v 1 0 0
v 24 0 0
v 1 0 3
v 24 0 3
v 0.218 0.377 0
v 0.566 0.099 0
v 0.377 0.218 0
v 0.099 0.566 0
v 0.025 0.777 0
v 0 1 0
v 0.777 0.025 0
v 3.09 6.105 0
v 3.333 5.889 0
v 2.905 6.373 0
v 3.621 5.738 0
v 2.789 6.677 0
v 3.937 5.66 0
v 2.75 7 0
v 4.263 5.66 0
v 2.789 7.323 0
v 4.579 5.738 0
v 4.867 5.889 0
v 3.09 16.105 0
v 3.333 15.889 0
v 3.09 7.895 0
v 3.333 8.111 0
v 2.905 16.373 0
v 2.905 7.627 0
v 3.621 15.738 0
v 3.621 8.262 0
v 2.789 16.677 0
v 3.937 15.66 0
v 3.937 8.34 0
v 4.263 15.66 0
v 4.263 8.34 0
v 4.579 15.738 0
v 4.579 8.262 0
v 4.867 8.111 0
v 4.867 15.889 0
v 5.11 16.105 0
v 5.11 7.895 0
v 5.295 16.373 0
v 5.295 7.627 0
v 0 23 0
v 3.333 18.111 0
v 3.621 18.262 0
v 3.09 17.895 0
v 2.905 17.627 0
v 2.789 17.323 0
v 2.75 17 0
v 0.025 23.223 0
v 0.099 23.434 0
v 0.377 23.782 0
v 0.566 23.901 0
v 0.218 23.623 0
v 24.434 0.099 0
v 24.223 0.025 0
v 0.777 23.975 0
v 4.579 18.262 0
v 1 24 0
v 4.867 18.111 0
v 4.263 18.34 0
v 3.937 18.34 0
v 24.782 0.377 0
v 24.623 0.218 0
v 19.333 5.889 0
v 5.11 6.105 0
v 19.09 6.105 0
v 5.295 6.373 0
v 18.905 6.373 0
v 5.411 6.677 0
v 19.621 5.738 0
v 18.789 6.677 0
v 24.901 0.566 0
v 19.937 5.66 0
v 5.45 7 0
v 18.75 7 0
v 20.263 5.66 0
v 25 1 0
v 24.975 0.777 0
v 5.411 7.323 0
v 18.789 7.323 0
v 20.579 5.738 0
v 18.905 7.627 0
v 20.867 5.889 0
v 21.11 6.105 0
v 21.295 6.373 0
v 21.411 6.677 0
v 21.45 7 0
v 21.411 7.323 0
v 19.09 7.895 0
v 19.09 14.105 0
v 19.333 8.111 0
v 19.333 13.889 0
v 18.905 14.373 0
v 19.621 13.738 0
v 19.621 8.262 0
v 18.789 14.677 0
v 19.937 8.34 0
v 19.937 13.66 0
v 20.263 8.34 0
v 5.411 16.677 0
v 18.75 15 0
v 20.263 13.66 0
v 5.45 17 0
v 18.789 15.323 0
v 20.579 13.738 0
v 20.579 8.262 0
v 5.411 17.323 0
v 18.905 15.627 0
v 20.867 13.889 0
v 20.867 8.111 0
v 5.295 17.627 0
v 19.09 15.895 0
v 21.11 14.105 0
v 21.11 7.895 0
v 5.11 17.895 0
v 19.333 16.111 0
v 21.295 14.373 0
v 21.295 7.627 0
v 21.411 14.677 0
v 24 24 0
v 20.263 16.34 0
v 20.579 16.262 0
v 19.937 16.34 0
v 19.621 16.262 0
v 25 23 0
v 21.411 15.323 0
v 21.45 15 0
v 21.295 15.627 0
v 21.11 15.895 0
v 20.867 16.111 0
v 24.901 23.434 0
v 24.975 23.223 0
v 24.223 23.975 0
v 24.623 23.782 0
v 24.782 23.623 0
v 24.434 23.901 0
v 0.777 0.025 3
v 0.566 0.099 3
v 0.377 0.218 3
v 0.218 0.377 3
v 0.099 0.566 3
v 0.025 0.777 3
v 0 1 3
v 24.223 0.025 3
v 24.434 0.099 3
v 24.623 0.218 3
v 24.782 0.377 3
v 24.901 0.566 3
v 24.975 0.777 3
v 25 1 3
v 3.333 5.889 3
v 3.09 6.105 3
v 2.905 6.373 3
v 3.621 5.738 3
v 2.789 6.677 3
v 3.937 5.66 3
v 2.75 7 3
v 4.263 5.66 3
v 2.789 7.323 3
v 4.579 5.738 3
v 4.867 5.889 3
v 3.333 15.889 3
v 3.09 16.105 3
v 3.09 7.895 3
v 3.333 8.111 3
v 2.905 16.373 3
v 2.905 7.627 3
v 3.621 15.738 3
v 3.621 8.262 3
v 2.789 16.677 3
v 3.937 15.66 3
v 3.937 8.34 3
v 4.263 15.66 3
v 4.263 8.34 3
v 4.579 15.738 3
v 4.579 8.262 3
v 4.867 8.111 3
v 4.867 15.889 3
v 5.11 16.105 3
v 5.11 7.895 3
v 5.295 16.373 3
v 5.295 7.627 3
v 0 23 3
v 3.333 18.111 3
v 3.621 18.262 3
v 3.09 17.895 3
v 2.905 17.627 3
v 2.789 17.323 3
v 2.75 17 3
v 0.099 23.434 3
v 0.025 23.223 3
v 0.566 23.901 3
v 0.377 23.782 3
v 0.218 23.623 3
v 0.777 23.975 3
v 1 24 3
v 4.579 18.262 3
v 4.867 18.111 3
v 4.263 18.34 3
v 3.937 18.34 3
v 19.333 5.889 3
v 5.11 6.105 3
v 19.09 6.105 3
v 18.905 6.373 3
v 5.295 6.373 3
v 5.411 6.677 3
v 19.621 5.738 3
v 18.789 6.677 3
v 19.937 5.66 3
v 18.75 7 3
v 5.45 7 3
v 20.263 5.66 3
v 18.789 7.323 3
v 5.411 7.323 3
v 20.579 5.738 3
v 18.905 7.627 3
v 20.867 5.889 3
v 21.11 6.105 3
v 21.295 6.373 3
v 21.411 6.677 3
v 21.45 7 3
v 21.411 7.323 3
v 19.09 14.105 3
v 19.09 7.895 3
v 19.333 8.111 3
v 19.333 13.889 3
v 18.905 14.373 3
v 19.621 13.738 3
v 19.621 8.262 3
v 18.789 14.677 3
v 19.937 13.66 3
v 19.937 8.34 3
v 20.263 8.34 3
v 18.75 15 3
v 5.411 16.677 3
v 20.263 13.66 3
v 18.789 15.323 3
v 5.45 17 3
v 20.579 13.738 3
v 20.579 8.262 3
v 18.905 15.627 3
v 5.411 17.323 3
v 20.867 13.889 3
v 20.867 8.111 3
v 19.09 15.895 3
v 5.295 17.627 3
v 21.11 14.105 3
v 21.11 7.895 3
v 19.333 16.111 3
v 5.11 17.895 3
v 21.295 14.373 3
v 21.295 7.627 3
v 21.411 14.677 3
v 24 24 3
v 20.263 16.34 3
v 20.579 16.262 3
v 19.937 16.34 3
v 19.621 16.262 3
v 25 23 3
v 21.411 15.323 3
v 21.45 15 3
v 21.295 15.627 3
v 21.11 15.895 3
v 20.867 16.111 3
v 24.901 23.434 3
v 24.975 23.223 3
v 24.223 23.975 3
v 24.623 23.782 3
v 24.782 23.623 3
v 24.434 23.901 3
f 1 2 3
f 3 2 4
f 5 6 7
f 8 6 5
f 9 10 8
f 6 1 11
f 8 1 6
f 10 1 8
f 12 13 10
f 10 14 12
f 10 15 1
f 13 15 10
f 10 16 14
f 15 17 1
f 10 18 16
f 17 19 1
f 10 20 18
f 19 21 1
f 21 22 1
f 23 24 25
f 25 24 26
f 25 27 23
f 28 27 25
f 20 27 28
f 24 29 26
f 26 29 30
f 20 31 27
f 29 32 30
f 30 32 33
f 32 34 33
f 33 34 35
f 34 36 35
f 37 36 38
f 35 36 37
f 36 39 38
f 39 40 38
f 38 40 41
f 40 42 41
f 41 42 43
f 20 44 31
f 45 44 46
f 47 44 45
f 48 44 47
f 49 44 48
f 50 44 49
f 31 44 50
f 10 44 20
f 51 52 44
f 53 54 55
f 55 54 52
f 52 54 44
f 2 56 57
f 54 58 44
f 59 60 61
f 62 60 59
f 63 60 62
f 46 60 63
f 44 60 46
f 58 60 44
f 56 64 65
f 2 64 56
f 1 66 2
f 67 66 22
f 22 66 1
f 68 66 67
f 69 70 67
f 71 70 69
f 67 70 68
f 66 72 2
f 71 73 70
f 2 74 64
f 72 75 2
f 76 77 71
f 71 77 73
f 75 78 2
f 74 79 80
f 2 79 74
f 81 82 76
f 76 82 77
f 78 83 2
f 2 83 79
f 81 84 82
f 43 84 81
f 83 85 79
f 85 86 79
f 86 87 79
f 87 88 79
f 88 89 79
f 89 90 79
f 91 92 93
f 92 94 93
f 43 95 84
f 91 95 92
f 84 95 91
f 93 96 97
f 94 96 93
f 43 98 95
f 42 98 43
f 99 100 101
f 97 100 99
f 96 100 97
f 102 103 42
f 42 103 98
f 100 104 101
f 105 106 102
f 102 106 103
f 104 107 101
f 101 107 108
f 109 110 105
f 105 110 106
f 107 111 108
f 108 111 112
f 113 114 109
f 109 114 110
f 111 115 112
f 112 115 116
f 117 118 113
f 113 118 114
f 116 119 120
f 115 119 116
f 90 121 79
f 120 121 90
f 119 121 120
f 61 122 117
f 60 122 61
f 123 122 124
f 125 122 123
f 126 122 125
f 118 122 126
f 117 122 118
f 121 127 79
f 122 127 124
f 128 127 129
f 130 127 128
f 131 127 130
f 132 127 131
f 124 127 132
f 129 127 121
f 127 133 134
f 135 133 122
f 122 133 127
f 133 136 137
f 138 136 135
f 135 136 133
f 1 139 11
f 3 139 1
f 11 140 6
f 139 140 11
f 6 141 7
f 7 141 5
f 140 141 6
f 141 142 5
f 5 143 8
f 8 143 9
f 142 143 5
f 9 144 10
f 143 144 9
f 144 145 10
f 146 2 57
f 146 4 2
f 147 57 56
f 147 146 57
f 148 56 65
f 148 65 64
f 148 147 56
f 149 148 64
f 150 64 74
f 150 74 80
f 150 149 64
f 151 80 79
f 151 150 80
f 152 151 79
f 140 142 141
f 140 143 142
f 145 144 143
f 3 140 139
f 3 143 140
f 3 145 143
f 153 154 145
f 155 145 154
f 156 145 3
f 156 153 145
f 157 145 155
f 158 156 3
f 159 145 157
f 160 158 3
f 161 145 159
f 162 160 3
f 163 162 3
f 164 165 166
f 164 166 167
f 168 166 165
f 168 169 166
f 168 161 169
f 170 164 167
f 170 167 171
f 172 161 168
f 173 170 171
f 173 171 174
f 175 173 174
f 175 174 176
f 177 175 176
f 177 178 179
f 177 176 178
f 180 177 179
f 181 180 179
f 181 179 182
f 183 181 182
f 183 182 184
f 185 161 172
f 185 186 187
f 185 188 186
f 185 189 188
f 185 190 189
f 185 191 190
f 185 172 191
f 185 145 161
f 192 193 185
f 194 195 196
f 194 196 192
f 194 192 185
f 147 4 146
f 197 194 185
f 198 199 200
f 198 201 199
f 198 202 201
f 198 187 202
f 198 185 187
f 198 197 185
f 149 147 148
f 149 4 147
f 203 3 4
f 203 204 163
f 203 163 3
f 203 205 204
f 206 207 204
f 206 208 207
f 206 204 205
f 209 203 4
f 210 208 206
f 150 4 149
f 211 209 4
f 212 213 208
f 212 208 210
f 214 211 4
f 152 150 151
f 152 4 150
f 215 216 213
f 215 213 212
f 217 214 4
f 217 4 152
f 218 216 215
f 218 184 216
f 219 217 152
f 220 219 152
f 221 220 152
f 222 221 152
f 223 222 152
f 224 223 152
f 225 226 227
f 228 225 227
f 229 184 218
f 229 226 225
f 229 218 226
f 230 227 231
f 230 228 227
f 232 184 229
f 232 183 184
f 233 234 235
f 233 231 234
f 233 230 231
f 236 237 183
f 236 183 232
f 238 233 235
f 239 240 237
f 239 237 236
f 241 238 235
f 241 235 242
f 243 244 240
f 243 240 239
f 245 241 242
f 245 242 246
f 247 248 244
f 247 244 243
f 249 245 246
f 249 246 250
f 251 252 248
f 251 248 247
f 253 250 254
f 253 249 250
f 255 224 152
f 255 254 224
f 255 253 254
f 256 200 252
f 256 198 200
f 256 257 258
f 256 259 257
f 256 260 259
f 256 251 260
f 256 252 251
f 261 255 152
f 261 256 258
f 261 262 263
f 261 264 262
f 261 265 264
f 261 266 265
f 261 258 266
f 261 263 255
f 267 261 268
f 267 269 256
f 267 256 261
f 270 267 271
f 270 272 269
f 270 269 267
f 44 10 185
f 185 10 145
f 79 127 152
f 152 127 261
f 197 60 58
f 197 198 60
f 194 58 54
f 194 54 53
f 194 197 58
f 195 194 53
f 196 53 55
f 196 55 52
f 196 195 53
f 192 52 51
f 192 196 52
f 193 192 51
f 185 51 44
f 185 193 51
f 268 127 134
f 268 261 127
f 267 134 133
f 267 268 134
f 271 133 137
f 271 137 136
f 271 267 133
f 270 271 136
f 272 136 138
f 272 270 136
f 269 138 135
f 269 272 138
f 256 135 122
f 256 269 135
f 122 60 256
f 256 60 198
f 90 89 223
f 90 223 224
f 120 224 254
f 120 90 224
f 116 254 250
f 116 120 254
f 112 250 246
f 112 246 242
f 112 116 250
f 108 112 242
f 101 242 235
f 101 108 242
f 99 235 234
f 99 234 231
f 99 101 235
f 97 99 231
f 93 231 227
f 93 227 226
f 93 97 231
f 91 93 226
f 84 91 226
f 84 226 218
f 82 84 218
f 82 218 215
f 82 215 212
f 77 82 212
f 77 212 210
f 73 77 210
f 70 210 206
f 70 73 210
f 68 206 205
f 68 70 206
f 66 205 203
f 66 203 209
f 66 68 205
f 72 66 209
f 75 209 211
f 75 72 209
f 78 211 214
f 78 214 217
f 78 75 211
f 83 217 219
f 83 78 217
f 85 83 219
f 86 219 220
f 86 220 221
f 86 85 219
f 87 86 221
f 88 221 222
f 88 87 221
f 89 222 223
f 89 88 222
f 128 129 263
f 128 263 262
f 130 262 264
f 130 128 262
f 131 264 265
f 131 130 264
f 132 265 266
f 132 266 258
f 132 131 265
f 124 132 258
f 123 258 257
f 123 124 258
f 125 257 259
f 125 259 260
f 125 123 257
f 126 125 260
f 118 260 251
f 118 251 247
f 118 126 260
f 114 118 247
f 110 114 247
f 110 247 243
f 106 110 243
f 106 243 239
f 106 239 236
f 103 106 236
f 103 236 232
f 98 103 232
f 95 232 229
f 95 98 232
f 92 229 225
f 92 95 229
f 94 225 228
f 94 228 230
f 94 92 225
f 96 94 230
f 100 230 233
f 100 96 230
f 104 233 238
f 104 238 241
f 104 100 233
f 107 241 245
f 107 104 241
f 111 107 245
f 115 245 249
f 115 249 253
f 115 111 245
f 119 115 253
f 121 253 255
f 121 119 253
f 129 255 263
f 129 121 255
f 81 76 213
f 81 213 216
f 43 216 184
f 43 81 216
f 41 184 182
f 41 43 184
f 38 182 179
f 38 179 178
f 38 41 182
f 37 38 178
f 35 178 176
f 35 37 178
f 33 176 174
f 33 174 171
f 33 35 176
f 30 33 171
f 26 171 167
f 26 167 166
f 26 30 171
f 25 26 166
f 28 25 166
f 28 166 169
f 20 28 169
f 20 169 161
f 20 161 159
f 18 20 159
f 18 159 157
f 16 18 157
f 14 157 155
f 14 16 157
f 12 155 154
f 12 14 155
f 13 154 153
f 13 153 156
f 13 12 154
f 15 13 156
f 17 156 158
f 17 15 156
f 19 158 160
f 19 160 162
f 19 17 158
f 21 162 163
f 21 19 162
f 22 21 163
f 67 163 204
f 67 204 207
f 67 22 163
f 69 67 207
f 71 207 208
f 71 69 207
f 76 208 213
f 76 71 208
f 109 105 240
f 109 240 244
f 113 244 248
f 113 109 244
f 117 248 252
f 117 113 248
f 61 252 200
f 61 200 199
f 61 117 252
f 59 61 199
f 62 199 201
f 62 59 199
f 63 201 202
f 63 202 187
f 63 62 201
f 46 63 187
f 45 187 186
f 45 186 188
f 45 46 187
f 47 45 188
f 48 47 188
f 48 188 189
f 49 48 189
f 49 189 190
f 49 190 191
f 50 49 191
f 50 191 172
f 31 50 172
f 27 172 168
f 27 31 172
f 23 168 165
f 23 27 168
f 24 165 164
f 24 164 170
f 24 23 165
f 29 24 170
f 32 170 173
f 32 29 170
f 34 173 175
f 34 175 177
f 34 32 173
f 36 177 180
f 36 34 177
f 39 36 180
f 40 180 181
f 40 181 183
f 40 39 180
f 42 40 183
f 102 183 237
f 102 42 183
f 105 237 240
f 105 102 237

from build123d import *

# Parameters (mm, degrees)
SKETCH_W  = 25
SKETCH_H  = 24
SKETCH_R  = 1.35
PAD_DEPTH = 3
FILLET_R  = 1


with BuildPart() as part:
    # Sketch → Pad (new body)
    with BuildSketch(Plane.XY):
        with Locations((12.5, 12)):
            Rectangle(SKETCH_W, SKETCH_H)
        with Locations((4.1, 17)):
            Circle(SKETCH_R, mode=Mode.SUBTRACT)
        with Locations((20.1, 15)):
            Circle(SKETCH_R, mode=Mode.SUBTRACT)
        with Locations((4.1, 7)):
            Circle(SKETCH_R, mode=Mode.SUBTRACT)
        with Locations((20.1, 7)):
            Circle(SKETCH_R, mode=Mode.SUBTRACT)
    extrude(amount=PAD_DEPTH)

    # Fillet
    fillet_edges = [part.edges().sort_by_distance(p)[0] for p in [
        (0, 0, 1.5),
        (25, 0, 1.5),
        (25, 24, 1.5),
        (0, 24, 1.5),
    ]]
    fillet(fillet_edges, radius=FILLET_R)


solid = part.part
